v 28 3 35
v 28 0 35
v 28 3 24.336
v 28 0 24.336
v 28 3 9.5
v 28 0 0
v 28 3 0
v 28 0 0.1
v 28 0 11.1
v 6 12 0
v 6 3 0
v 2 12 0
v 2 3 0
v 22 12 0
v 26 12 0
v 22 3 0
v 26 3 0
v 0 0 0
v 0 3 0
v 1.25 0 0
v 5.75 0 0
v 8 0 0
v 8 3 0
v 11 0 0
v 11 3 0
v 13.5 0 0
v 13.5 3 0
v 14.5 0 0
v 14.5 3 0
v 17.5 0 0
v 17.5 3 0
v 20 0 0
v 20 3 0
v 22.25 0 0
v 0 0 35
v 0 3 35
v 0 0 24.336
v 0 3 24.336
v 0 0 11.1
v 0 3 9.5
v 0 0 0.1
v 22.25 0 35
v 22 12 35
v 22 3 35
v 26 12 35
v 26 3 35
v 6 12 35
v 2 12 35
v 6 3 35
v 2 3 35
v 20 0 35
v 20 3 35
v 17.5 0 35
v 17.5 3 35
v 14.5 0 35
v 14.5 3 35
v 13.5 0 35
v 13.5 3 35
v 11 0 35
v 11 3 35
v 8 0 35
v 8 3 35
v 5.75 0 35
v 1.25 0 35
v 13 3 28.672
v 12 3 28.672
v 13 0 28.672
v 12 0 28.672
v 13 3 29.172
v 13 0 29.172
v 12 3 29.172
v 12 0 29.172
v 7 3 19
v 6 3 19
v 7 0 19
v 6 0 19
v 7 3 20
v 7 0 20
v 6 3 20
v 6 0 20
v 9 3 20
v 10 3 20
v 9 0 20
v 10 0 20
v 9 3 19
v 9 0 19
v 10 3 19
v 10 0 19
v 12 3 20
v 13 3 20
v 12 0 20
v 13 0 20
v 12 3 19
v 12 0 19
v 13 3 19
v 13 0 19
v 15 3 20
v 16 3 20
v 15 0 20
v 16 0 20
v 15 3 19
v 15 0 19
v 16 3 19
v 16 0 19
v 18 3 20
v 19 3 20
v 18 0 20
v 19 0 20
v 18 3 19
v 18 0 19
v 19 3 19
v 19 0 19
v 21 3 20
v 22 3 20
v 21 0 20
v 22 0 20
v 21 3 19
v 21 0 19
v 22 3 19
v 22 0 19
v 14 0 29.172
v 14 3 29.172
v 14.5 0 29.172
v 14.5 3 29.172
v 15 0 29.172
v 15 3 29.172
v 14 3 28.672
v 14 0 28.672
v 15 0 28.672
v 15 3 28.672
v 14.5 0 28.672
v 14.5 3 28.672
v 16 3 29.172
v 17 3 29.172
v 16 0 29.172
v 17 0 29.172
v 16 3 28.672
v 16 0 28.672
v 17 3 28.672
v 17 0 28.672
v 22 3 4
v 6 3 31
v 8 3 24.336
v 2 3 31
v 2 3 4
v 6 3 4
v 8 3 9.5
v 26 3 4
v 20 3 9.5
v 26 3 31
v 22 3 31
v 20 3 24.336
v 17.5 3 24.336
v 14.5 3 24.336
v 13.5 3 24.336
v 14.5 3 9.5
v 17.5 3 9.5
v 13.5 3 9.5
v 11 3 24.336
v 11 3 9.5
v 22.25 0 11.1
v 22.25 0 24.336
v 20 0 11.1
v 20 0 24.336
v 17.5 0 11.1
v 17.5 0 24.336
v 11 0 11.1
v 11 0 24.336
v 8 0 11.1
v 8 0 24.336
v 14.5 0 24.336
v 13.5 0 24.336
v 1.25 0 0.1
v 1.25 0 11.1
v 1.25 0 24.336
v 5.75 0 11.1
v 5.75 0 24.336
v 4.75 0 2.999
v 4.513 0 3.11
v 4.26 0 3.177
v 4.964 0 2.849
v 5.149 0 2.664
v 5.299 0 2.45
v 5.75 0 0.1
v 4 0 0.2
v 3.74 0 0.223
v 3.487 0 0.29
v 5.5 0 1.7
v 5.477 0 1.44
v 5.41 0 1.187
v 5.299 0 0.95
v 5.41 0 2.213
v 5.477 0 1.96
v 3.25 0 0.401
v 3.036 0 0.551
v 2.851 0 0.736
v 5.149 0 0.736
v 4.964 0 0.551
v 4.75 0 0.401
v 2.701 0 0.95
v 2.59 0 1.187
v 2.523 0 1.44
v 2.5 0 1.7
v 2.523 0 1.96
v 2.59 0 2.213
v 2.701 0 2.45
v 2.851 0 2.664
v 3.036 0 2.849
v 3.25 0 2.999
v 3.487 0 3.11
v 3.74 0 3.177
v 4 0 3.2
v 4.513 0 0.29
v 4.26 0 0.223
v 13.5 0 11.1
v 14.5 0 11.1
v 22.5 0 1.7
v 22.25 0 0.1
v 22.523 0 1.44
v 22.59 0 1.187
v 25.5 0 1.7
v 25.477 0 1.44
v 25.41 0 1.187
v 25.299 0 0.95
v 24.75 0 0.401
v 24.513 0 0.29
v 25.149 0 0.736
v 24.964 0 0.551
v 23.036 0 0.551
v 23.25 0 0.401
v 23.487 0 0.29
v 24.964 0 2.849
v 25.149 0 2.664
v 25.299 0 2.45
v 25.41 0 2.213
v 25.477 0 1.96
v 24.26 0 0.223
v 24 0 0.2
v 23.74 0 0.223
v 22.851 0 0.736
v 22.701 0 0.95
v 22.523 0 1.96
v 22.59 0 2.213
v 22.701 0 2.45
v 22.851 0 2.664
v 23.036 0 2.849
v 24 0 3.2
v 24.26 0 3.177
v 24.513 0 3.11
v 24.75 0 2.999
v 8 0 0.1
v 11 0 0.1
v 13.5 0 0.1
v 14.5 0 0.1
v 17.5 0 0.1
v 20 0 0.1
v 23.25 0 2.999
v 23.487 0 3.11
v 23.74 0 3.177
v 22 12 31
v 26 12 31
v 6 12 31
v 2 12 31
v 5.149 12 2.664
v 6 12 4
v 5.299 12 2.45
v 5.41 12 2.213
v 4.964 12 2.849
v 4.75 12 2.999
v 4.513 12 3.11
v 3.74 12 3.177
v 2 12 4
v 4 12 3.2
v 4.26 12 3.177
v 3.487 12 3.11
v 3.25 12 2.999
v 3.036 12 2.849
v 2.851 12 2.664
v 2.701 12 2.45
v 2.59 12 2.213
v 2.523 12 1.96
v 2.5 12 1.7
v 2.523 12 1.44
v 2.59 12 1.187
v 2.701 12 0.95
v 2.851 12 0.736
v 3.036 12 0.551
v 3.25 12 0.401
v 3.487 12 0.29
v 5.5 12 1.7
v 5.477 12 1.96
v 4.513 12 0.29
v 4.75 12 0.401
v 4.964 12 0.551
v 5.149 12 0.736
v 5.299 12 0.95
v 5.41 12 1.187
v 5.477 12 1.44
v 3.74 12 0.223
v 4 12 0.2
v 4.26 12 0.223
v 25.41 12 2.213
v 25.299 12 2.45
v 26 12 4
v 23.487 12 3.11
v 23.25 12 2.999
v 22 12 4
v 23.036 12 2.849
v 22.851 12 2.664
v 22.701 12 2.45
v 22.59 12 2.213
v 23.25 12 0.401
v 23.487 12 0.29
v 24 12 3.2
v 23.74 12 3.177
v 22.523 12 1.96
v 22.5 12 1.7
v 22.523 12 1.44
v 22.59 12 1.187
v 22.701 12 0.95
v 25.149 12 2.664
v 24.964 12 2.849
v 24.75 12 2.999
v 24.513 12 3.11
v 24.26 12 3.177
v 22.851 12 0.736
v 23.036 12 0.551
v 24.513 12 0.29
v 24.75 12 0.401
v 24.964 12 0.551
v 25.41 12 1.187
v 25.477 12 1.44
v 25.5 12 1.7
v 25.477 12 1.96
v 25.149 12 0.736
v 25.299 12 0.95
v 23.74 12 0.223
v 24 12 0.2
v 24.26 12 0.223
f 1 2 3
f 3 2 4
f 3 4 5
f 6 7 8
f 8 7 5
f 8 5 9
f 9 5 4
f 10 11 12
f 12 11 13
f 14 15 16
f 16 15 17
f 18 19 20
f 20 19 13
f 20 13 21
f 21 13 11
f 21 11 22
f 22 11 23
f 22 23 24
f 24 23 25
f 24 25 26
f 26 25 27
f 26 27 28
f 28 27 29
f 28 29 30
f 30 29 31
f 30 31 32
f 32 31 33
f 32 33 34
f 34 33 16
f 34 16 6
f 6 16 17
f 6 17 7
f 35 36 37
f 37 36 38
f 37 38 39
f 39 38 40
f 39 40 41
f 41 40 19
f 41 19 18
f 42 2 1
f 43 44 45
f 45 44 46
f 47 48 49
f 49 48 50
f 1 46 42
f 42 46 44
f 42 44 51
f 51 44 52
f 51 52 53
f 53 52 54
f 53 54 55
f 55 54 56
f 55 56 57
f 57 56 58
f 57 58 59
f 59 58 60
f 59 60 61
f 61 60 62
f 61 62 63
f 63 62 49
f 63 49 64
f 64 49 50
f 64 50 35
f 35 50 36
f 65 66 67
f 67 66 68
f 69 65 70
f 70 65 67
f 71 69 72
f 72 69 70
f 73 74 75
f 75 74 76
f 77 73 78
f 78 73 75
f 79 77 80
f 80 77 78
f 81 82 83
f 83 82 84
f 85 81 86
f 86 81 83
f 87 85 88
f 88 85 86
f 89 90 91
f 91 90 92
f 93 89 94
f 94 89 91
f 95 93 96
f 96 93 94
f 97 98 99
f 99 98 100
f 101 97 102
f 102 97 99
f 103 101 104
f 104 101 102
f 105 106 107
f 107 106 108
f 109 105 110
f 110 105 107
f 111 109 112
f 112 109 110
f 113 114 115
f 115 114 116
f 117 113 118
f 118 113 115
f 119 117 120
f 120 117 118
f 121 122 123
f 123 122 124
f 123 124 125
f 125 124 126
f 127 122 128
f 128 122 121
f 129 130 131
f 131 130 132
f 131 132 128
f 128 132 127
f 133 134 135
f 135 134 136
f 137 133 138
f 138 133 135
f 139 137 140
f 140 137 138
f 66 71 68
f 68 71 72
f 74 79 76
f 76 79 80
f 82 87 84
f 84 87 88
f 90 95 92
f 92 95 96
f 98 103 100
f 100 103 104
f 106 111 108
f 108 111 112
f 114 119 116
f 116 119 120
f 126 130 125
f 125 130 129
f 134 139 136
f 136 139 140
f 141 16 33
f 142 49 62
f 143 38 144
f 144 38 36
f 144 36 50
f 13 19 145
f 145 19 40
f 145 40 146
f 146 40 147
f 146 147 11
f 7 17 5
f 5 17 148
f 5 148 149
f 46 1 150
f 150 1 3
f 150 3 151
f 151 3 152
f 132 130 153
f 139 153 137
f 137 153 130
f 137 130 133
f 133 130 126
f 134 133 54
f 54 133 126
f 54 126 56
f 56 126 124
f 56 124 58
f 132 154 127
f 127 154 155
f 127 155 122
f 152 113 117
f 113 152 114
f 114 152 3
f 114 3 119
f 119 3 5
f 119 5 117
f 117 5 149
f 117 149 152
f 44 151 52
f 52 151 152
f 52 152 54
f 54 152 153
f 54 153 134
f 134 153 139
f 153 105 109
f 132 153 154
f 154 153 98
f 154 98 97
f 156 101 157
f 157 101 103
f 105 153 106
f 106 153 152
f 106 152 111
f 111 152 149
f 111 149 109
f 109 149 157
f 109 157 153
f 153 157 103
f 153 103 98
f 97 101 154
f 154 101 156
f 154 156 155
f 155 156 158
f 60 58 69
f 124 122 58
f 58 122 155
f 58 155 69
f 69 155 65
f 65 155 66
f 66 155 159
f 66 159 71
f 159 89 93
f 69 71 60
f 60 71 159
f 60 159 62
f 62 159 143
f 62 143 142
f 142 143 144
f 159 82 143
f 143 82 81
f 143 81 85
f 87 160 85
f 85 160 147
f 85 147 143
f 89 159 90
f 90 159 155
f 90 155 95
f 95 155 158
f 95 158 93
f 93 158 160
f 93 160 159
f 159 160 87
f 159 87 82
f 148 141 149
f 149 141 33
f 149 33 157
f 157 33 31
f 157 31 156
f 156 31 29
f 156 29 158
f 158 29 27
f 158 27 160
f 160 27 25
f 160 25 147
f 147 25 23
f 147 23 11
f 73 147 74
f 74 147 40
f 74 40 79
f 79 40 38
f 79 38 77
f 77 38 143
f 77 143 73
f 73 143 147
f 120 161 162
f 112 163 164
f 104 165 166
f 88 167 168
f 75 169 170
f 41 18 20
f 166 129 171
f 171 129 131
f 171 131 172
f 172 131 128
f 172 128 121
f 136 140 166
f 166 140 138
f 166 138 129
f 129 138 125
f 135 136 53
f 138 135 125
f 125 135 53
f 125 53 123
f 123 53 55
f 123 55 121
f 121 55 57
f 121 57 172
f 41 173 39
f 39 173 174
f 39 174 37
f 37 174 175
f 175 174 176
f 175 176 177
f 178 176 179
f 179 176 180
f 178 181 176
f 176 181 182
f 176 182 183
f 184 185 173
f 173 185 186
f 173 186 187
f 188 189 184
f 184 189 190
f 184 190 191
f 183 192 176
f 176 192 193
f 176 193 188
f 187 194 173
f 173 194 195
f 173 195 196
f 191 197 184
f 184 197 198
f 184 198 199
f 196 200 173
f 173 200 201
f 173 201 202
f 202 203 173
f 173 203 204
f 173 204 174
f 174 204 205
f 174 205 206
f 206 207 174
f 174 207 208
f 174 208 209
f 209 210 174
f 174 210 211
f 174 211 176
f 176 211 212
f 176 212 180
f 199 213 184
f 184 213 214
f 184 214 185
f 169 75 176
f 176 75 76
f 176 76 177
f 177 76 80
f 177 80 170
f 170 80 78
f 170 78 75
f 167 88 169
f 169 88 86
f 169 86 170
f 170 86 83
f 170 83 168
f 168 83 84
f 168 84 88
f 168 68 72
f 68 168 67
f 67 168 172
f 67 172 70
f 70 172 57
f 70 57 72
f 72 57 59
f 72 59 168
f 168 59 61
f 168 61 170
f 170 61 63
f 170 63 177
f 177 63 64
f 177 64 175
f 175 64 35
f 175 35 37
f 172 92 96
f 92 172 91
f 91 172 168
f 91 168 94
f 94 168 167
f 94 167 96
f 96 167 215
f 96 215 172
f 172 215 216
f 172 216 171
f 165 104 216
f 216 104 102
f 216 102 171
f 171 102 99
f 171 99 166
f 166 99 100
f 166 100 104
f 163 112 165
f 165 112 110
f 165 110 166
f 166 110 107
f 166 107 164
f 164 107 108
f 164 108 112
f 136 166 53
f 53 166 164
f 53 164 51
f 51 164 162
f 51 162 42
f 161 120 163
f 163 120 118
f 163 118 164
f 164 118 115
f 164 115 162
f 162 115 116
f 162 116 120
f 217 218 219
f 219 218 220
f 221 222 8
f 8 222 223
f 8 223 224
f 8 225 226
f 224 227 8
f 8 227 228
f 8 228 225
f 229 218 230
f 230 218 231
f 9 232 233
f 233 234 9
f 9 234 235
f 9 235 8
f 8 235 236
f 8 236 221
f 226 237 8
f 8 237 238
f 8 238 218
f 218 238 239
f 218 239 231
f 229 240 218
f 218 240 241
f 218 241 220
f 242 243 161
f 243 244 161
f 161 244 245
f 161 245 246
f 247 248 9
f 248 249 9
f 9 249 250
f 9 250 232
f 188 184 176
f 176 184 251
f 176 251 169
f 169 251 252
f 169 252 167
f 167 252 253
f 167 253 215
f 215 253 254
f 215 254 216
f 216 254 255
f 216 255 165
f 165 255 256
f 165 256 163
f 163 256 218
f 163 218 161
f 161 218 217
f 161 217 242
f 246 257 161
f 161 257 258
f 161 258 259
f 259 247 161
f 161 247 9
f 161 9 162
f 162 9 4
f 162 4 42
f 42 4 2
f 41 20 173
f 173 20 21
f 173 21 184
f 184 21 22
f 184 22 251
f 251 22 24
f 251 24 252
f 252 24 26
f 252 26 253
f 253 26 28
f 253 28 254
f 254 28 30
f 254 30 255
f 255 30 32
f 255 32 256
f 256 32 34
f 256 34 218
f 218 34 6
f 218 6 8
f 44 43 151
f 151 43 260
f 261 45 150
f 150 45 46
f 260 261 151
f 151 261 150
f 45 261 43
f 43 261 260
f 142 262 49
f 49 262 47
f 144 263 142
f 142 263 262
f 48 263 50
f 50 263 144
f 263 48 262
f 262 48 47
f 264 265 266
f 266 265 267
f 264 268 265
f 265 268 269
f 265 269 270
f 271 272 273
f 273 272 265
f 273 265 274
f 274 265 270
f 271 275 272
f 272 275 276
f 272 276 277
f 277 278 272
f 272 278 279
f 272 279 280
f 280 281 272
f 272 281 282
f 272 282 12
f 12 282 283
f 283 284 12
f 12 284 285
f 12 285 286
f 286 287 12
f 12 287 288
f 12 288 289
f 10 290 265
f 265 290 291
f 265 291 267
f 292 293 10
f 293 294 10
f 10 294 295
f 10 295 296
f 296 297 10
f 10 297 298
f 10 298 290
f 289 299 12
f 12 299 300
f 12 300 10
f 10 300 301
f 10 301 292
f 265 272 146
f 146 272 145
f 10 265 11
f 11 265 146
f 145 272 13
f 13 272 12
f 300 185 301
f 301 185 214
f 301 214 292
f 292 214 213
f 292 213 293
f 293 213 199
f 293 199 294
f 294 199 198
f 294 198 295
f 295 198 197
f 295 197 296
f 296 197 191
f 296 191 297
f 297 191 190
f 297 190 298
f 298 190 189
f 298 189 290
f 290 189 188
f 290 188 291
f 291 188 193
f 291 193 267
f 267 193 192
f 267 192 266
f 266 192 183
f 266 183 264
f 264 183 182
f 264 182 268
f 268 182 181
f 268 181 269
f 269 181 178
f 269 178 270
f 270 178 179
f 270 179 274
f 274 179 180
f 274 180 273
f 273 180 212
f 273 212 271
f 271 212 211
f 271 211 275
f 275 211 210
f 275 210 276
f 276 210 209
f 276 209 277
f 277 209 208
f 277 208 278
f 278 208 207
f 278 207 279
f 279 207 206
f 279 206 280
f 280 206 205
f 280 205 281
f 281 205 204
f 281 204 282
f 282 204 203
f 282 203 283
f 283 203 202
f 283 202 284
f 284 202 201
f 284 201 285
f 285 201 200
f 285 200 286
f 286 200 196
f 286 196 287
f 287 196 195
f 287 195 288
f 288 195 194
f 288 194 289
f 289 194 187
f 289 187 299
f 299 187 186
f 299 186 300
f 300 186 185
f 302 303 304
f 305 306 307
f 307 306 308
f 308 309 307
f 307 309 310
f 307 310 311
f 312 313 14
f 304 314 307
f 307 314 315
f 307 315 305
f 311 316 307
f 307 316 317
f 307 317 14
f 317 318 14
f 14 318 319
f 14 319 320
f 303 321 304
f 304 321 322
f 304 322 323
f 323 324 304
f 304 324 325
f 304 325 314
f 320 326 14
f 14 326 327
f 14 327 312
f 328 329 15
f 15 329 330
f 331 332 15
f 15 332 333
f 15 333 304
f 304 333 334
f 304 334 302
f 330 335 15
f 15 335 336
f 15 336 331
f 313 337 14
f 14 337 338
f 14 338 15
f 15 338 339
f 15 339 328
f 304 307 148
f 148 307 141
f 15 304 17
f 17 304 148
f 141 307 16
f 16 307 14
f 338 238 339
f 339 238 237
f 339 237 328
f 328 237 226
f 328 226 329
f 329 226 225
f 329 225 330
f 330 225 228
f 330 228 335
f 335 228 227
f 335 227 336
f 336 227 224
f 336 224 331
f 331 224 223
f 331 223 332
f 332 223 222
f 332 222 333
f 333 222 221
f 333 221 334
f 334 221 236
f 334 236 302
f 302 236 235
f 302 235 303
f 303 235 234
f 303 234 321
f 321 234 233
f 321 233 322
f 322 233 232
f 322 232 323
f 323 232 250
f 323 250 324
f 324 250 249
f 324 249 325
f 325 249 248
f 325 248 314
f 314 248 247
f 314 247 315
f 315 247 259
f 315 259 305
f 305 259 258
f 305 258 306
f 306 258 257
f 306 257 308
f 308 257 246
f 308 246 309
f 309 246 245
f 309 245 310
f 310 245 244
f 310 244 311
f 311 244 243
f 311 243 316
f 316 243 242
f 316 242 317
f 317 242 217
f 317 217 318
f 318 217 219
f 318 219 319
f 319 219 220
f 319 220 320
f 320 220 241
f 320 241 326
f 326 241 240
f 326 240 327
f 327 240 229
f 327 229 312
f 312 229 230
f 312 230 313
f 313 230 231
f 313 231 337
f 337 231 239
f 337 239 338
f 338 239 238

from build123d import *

# Parameters (mm, degrees)
ESQUISSE1_W        = 1
ESQUISSE1_H        = 0.5
ESQUISSE1_H_2      = 1
BOSS_EXTRU_2_DEPTH = 3
ESQUISSE1_4_W      = 4
ESQUISSE1_4_H      = 4
ESQUISSE1_4_R      = 1.5
BOSS_EXTRU_3_DEPTH = 12


with BuildPart() as part:
    # Esquisse1 → Boss.-Extru.2 (new body)
    with BuildSketch(Plane(origin=(0, 0, 0), x_dir=(1, 0, 0), z_dir=(0, 1, 0))):
        Polygon((2, 0), (0, 0), (0, -35), (2, -35), (2, -31), (6, -31), (6, -35), (22, -35), (22, -31), (26, -31), (26, -35), (28, -35), (28, 0), (26, 0), (26, -4), (22, -4), (22, 0), (6, 0), (6, -4), (2, -4), align=None)
        with Locations((12.5, -28.922446553)):
            Rectangle(ESQUISSE1_W, ESQUISSE1_H, mode=Mode.SUBTRACT)
        with Locations((6.5, -19.5)):
            Rectangle(ESQUISSE1_W, ESQUISSE1_H_2, mode=Mode.SUBTRACT)
        with Locations((9.5, -19.5)):
            Rectangle(ESQUISSE1_W, ESQUISSE1_H_2, mode=Mode.SUBTRACT)
        with Locations((12.5, -19.5)):
            Rectangle(ESQUISSE1_W, ESQUISSE1_H_2, mode=Mode.SUBTRACT)
        with Locations((14.5, -28.922446553)):
            Rectangle(ESQUISSE1_W, ESQUISSE1_H, mode=Mode.SUBTRACT)
        with Locations((16.5, -28.922446553)):
            Rectangle(ESQUISSE1_W, ESQUISSE1_H, mode=Mode.SUBTRACT)
        with Locations((15.5, -19.5)):
            Rectangle(ESQUISSE1_W, ESQUISSE1_H_2, mode=Mode.SUBTRACT)
        with Locations((18.5, -19.5)):
            Rectangle(ESQUISSE1_W, ESQUISSE1_H_2, mode=Mode.SUBTRACT)
        with Locations((21.5, -19.5)):
            Rectangle(ESQUISSE1_W, ESQUISSE1_H_2, mode=Mode.SUBTRACT)
    extrude(amount=BOSS_EXTRU_2_DEPTH)

    # Esquisse1<4> → Boss.-Extru.3 (add)
    # profile 1 of 4: a face of its own
    with BuildSketch(Plane(origin=(0, 0, 0), x_dir=(1, 0, 0), z_dir=(0, 1, 0))):
        with Locations((4, -2)):
            Rectangle(ESQUISSE1_4_W, ESQUISSE1_4_H)
        with Locations((4, -1.7)):
            Circle(ESQUISSE1_4_R, mode=Mode.SUBTRACT)
    # profile 2 of 4: a face of its own
    with BuildSketch(Plane(origin=(0, 0, 0), x_dir=(1, 0, 0), z_dir=(0, 1, 0))):
        with Locations((4, -33)):
            Rectangle(ESQUISSE1_4_W, ESQUISSE1_4_H)
    # profile 3 of 4: a face of its own
    with BuildSketch(Plane(origin=(0, 0, 0), x_dir=(1, 0, 0), z_dir=(0, 1, 0))):
        with Locations((24, -2)):
            Rectangle(ESQUISSE1_4_W, ESQUISSE1_4_H)
        with Locations((24, -1.7)):
            Circle(ESQUISSE1_4_R, mode=Mode.SUBTRACT)
    # profile 4 of 4: a face of its own
    with BuildSketch(Plane(origin=(0, 0, 0), x_dir=(1, 0, 0), z_dir=(0, 1, 0))):
        with Locations((24, -33)):
            Rectangle(ESQUISSE1_4_W, ESQUISSE1_4_H)
    extrude(amount=BOSS_EXTRU_3_DEPTH)


solid = part.part
